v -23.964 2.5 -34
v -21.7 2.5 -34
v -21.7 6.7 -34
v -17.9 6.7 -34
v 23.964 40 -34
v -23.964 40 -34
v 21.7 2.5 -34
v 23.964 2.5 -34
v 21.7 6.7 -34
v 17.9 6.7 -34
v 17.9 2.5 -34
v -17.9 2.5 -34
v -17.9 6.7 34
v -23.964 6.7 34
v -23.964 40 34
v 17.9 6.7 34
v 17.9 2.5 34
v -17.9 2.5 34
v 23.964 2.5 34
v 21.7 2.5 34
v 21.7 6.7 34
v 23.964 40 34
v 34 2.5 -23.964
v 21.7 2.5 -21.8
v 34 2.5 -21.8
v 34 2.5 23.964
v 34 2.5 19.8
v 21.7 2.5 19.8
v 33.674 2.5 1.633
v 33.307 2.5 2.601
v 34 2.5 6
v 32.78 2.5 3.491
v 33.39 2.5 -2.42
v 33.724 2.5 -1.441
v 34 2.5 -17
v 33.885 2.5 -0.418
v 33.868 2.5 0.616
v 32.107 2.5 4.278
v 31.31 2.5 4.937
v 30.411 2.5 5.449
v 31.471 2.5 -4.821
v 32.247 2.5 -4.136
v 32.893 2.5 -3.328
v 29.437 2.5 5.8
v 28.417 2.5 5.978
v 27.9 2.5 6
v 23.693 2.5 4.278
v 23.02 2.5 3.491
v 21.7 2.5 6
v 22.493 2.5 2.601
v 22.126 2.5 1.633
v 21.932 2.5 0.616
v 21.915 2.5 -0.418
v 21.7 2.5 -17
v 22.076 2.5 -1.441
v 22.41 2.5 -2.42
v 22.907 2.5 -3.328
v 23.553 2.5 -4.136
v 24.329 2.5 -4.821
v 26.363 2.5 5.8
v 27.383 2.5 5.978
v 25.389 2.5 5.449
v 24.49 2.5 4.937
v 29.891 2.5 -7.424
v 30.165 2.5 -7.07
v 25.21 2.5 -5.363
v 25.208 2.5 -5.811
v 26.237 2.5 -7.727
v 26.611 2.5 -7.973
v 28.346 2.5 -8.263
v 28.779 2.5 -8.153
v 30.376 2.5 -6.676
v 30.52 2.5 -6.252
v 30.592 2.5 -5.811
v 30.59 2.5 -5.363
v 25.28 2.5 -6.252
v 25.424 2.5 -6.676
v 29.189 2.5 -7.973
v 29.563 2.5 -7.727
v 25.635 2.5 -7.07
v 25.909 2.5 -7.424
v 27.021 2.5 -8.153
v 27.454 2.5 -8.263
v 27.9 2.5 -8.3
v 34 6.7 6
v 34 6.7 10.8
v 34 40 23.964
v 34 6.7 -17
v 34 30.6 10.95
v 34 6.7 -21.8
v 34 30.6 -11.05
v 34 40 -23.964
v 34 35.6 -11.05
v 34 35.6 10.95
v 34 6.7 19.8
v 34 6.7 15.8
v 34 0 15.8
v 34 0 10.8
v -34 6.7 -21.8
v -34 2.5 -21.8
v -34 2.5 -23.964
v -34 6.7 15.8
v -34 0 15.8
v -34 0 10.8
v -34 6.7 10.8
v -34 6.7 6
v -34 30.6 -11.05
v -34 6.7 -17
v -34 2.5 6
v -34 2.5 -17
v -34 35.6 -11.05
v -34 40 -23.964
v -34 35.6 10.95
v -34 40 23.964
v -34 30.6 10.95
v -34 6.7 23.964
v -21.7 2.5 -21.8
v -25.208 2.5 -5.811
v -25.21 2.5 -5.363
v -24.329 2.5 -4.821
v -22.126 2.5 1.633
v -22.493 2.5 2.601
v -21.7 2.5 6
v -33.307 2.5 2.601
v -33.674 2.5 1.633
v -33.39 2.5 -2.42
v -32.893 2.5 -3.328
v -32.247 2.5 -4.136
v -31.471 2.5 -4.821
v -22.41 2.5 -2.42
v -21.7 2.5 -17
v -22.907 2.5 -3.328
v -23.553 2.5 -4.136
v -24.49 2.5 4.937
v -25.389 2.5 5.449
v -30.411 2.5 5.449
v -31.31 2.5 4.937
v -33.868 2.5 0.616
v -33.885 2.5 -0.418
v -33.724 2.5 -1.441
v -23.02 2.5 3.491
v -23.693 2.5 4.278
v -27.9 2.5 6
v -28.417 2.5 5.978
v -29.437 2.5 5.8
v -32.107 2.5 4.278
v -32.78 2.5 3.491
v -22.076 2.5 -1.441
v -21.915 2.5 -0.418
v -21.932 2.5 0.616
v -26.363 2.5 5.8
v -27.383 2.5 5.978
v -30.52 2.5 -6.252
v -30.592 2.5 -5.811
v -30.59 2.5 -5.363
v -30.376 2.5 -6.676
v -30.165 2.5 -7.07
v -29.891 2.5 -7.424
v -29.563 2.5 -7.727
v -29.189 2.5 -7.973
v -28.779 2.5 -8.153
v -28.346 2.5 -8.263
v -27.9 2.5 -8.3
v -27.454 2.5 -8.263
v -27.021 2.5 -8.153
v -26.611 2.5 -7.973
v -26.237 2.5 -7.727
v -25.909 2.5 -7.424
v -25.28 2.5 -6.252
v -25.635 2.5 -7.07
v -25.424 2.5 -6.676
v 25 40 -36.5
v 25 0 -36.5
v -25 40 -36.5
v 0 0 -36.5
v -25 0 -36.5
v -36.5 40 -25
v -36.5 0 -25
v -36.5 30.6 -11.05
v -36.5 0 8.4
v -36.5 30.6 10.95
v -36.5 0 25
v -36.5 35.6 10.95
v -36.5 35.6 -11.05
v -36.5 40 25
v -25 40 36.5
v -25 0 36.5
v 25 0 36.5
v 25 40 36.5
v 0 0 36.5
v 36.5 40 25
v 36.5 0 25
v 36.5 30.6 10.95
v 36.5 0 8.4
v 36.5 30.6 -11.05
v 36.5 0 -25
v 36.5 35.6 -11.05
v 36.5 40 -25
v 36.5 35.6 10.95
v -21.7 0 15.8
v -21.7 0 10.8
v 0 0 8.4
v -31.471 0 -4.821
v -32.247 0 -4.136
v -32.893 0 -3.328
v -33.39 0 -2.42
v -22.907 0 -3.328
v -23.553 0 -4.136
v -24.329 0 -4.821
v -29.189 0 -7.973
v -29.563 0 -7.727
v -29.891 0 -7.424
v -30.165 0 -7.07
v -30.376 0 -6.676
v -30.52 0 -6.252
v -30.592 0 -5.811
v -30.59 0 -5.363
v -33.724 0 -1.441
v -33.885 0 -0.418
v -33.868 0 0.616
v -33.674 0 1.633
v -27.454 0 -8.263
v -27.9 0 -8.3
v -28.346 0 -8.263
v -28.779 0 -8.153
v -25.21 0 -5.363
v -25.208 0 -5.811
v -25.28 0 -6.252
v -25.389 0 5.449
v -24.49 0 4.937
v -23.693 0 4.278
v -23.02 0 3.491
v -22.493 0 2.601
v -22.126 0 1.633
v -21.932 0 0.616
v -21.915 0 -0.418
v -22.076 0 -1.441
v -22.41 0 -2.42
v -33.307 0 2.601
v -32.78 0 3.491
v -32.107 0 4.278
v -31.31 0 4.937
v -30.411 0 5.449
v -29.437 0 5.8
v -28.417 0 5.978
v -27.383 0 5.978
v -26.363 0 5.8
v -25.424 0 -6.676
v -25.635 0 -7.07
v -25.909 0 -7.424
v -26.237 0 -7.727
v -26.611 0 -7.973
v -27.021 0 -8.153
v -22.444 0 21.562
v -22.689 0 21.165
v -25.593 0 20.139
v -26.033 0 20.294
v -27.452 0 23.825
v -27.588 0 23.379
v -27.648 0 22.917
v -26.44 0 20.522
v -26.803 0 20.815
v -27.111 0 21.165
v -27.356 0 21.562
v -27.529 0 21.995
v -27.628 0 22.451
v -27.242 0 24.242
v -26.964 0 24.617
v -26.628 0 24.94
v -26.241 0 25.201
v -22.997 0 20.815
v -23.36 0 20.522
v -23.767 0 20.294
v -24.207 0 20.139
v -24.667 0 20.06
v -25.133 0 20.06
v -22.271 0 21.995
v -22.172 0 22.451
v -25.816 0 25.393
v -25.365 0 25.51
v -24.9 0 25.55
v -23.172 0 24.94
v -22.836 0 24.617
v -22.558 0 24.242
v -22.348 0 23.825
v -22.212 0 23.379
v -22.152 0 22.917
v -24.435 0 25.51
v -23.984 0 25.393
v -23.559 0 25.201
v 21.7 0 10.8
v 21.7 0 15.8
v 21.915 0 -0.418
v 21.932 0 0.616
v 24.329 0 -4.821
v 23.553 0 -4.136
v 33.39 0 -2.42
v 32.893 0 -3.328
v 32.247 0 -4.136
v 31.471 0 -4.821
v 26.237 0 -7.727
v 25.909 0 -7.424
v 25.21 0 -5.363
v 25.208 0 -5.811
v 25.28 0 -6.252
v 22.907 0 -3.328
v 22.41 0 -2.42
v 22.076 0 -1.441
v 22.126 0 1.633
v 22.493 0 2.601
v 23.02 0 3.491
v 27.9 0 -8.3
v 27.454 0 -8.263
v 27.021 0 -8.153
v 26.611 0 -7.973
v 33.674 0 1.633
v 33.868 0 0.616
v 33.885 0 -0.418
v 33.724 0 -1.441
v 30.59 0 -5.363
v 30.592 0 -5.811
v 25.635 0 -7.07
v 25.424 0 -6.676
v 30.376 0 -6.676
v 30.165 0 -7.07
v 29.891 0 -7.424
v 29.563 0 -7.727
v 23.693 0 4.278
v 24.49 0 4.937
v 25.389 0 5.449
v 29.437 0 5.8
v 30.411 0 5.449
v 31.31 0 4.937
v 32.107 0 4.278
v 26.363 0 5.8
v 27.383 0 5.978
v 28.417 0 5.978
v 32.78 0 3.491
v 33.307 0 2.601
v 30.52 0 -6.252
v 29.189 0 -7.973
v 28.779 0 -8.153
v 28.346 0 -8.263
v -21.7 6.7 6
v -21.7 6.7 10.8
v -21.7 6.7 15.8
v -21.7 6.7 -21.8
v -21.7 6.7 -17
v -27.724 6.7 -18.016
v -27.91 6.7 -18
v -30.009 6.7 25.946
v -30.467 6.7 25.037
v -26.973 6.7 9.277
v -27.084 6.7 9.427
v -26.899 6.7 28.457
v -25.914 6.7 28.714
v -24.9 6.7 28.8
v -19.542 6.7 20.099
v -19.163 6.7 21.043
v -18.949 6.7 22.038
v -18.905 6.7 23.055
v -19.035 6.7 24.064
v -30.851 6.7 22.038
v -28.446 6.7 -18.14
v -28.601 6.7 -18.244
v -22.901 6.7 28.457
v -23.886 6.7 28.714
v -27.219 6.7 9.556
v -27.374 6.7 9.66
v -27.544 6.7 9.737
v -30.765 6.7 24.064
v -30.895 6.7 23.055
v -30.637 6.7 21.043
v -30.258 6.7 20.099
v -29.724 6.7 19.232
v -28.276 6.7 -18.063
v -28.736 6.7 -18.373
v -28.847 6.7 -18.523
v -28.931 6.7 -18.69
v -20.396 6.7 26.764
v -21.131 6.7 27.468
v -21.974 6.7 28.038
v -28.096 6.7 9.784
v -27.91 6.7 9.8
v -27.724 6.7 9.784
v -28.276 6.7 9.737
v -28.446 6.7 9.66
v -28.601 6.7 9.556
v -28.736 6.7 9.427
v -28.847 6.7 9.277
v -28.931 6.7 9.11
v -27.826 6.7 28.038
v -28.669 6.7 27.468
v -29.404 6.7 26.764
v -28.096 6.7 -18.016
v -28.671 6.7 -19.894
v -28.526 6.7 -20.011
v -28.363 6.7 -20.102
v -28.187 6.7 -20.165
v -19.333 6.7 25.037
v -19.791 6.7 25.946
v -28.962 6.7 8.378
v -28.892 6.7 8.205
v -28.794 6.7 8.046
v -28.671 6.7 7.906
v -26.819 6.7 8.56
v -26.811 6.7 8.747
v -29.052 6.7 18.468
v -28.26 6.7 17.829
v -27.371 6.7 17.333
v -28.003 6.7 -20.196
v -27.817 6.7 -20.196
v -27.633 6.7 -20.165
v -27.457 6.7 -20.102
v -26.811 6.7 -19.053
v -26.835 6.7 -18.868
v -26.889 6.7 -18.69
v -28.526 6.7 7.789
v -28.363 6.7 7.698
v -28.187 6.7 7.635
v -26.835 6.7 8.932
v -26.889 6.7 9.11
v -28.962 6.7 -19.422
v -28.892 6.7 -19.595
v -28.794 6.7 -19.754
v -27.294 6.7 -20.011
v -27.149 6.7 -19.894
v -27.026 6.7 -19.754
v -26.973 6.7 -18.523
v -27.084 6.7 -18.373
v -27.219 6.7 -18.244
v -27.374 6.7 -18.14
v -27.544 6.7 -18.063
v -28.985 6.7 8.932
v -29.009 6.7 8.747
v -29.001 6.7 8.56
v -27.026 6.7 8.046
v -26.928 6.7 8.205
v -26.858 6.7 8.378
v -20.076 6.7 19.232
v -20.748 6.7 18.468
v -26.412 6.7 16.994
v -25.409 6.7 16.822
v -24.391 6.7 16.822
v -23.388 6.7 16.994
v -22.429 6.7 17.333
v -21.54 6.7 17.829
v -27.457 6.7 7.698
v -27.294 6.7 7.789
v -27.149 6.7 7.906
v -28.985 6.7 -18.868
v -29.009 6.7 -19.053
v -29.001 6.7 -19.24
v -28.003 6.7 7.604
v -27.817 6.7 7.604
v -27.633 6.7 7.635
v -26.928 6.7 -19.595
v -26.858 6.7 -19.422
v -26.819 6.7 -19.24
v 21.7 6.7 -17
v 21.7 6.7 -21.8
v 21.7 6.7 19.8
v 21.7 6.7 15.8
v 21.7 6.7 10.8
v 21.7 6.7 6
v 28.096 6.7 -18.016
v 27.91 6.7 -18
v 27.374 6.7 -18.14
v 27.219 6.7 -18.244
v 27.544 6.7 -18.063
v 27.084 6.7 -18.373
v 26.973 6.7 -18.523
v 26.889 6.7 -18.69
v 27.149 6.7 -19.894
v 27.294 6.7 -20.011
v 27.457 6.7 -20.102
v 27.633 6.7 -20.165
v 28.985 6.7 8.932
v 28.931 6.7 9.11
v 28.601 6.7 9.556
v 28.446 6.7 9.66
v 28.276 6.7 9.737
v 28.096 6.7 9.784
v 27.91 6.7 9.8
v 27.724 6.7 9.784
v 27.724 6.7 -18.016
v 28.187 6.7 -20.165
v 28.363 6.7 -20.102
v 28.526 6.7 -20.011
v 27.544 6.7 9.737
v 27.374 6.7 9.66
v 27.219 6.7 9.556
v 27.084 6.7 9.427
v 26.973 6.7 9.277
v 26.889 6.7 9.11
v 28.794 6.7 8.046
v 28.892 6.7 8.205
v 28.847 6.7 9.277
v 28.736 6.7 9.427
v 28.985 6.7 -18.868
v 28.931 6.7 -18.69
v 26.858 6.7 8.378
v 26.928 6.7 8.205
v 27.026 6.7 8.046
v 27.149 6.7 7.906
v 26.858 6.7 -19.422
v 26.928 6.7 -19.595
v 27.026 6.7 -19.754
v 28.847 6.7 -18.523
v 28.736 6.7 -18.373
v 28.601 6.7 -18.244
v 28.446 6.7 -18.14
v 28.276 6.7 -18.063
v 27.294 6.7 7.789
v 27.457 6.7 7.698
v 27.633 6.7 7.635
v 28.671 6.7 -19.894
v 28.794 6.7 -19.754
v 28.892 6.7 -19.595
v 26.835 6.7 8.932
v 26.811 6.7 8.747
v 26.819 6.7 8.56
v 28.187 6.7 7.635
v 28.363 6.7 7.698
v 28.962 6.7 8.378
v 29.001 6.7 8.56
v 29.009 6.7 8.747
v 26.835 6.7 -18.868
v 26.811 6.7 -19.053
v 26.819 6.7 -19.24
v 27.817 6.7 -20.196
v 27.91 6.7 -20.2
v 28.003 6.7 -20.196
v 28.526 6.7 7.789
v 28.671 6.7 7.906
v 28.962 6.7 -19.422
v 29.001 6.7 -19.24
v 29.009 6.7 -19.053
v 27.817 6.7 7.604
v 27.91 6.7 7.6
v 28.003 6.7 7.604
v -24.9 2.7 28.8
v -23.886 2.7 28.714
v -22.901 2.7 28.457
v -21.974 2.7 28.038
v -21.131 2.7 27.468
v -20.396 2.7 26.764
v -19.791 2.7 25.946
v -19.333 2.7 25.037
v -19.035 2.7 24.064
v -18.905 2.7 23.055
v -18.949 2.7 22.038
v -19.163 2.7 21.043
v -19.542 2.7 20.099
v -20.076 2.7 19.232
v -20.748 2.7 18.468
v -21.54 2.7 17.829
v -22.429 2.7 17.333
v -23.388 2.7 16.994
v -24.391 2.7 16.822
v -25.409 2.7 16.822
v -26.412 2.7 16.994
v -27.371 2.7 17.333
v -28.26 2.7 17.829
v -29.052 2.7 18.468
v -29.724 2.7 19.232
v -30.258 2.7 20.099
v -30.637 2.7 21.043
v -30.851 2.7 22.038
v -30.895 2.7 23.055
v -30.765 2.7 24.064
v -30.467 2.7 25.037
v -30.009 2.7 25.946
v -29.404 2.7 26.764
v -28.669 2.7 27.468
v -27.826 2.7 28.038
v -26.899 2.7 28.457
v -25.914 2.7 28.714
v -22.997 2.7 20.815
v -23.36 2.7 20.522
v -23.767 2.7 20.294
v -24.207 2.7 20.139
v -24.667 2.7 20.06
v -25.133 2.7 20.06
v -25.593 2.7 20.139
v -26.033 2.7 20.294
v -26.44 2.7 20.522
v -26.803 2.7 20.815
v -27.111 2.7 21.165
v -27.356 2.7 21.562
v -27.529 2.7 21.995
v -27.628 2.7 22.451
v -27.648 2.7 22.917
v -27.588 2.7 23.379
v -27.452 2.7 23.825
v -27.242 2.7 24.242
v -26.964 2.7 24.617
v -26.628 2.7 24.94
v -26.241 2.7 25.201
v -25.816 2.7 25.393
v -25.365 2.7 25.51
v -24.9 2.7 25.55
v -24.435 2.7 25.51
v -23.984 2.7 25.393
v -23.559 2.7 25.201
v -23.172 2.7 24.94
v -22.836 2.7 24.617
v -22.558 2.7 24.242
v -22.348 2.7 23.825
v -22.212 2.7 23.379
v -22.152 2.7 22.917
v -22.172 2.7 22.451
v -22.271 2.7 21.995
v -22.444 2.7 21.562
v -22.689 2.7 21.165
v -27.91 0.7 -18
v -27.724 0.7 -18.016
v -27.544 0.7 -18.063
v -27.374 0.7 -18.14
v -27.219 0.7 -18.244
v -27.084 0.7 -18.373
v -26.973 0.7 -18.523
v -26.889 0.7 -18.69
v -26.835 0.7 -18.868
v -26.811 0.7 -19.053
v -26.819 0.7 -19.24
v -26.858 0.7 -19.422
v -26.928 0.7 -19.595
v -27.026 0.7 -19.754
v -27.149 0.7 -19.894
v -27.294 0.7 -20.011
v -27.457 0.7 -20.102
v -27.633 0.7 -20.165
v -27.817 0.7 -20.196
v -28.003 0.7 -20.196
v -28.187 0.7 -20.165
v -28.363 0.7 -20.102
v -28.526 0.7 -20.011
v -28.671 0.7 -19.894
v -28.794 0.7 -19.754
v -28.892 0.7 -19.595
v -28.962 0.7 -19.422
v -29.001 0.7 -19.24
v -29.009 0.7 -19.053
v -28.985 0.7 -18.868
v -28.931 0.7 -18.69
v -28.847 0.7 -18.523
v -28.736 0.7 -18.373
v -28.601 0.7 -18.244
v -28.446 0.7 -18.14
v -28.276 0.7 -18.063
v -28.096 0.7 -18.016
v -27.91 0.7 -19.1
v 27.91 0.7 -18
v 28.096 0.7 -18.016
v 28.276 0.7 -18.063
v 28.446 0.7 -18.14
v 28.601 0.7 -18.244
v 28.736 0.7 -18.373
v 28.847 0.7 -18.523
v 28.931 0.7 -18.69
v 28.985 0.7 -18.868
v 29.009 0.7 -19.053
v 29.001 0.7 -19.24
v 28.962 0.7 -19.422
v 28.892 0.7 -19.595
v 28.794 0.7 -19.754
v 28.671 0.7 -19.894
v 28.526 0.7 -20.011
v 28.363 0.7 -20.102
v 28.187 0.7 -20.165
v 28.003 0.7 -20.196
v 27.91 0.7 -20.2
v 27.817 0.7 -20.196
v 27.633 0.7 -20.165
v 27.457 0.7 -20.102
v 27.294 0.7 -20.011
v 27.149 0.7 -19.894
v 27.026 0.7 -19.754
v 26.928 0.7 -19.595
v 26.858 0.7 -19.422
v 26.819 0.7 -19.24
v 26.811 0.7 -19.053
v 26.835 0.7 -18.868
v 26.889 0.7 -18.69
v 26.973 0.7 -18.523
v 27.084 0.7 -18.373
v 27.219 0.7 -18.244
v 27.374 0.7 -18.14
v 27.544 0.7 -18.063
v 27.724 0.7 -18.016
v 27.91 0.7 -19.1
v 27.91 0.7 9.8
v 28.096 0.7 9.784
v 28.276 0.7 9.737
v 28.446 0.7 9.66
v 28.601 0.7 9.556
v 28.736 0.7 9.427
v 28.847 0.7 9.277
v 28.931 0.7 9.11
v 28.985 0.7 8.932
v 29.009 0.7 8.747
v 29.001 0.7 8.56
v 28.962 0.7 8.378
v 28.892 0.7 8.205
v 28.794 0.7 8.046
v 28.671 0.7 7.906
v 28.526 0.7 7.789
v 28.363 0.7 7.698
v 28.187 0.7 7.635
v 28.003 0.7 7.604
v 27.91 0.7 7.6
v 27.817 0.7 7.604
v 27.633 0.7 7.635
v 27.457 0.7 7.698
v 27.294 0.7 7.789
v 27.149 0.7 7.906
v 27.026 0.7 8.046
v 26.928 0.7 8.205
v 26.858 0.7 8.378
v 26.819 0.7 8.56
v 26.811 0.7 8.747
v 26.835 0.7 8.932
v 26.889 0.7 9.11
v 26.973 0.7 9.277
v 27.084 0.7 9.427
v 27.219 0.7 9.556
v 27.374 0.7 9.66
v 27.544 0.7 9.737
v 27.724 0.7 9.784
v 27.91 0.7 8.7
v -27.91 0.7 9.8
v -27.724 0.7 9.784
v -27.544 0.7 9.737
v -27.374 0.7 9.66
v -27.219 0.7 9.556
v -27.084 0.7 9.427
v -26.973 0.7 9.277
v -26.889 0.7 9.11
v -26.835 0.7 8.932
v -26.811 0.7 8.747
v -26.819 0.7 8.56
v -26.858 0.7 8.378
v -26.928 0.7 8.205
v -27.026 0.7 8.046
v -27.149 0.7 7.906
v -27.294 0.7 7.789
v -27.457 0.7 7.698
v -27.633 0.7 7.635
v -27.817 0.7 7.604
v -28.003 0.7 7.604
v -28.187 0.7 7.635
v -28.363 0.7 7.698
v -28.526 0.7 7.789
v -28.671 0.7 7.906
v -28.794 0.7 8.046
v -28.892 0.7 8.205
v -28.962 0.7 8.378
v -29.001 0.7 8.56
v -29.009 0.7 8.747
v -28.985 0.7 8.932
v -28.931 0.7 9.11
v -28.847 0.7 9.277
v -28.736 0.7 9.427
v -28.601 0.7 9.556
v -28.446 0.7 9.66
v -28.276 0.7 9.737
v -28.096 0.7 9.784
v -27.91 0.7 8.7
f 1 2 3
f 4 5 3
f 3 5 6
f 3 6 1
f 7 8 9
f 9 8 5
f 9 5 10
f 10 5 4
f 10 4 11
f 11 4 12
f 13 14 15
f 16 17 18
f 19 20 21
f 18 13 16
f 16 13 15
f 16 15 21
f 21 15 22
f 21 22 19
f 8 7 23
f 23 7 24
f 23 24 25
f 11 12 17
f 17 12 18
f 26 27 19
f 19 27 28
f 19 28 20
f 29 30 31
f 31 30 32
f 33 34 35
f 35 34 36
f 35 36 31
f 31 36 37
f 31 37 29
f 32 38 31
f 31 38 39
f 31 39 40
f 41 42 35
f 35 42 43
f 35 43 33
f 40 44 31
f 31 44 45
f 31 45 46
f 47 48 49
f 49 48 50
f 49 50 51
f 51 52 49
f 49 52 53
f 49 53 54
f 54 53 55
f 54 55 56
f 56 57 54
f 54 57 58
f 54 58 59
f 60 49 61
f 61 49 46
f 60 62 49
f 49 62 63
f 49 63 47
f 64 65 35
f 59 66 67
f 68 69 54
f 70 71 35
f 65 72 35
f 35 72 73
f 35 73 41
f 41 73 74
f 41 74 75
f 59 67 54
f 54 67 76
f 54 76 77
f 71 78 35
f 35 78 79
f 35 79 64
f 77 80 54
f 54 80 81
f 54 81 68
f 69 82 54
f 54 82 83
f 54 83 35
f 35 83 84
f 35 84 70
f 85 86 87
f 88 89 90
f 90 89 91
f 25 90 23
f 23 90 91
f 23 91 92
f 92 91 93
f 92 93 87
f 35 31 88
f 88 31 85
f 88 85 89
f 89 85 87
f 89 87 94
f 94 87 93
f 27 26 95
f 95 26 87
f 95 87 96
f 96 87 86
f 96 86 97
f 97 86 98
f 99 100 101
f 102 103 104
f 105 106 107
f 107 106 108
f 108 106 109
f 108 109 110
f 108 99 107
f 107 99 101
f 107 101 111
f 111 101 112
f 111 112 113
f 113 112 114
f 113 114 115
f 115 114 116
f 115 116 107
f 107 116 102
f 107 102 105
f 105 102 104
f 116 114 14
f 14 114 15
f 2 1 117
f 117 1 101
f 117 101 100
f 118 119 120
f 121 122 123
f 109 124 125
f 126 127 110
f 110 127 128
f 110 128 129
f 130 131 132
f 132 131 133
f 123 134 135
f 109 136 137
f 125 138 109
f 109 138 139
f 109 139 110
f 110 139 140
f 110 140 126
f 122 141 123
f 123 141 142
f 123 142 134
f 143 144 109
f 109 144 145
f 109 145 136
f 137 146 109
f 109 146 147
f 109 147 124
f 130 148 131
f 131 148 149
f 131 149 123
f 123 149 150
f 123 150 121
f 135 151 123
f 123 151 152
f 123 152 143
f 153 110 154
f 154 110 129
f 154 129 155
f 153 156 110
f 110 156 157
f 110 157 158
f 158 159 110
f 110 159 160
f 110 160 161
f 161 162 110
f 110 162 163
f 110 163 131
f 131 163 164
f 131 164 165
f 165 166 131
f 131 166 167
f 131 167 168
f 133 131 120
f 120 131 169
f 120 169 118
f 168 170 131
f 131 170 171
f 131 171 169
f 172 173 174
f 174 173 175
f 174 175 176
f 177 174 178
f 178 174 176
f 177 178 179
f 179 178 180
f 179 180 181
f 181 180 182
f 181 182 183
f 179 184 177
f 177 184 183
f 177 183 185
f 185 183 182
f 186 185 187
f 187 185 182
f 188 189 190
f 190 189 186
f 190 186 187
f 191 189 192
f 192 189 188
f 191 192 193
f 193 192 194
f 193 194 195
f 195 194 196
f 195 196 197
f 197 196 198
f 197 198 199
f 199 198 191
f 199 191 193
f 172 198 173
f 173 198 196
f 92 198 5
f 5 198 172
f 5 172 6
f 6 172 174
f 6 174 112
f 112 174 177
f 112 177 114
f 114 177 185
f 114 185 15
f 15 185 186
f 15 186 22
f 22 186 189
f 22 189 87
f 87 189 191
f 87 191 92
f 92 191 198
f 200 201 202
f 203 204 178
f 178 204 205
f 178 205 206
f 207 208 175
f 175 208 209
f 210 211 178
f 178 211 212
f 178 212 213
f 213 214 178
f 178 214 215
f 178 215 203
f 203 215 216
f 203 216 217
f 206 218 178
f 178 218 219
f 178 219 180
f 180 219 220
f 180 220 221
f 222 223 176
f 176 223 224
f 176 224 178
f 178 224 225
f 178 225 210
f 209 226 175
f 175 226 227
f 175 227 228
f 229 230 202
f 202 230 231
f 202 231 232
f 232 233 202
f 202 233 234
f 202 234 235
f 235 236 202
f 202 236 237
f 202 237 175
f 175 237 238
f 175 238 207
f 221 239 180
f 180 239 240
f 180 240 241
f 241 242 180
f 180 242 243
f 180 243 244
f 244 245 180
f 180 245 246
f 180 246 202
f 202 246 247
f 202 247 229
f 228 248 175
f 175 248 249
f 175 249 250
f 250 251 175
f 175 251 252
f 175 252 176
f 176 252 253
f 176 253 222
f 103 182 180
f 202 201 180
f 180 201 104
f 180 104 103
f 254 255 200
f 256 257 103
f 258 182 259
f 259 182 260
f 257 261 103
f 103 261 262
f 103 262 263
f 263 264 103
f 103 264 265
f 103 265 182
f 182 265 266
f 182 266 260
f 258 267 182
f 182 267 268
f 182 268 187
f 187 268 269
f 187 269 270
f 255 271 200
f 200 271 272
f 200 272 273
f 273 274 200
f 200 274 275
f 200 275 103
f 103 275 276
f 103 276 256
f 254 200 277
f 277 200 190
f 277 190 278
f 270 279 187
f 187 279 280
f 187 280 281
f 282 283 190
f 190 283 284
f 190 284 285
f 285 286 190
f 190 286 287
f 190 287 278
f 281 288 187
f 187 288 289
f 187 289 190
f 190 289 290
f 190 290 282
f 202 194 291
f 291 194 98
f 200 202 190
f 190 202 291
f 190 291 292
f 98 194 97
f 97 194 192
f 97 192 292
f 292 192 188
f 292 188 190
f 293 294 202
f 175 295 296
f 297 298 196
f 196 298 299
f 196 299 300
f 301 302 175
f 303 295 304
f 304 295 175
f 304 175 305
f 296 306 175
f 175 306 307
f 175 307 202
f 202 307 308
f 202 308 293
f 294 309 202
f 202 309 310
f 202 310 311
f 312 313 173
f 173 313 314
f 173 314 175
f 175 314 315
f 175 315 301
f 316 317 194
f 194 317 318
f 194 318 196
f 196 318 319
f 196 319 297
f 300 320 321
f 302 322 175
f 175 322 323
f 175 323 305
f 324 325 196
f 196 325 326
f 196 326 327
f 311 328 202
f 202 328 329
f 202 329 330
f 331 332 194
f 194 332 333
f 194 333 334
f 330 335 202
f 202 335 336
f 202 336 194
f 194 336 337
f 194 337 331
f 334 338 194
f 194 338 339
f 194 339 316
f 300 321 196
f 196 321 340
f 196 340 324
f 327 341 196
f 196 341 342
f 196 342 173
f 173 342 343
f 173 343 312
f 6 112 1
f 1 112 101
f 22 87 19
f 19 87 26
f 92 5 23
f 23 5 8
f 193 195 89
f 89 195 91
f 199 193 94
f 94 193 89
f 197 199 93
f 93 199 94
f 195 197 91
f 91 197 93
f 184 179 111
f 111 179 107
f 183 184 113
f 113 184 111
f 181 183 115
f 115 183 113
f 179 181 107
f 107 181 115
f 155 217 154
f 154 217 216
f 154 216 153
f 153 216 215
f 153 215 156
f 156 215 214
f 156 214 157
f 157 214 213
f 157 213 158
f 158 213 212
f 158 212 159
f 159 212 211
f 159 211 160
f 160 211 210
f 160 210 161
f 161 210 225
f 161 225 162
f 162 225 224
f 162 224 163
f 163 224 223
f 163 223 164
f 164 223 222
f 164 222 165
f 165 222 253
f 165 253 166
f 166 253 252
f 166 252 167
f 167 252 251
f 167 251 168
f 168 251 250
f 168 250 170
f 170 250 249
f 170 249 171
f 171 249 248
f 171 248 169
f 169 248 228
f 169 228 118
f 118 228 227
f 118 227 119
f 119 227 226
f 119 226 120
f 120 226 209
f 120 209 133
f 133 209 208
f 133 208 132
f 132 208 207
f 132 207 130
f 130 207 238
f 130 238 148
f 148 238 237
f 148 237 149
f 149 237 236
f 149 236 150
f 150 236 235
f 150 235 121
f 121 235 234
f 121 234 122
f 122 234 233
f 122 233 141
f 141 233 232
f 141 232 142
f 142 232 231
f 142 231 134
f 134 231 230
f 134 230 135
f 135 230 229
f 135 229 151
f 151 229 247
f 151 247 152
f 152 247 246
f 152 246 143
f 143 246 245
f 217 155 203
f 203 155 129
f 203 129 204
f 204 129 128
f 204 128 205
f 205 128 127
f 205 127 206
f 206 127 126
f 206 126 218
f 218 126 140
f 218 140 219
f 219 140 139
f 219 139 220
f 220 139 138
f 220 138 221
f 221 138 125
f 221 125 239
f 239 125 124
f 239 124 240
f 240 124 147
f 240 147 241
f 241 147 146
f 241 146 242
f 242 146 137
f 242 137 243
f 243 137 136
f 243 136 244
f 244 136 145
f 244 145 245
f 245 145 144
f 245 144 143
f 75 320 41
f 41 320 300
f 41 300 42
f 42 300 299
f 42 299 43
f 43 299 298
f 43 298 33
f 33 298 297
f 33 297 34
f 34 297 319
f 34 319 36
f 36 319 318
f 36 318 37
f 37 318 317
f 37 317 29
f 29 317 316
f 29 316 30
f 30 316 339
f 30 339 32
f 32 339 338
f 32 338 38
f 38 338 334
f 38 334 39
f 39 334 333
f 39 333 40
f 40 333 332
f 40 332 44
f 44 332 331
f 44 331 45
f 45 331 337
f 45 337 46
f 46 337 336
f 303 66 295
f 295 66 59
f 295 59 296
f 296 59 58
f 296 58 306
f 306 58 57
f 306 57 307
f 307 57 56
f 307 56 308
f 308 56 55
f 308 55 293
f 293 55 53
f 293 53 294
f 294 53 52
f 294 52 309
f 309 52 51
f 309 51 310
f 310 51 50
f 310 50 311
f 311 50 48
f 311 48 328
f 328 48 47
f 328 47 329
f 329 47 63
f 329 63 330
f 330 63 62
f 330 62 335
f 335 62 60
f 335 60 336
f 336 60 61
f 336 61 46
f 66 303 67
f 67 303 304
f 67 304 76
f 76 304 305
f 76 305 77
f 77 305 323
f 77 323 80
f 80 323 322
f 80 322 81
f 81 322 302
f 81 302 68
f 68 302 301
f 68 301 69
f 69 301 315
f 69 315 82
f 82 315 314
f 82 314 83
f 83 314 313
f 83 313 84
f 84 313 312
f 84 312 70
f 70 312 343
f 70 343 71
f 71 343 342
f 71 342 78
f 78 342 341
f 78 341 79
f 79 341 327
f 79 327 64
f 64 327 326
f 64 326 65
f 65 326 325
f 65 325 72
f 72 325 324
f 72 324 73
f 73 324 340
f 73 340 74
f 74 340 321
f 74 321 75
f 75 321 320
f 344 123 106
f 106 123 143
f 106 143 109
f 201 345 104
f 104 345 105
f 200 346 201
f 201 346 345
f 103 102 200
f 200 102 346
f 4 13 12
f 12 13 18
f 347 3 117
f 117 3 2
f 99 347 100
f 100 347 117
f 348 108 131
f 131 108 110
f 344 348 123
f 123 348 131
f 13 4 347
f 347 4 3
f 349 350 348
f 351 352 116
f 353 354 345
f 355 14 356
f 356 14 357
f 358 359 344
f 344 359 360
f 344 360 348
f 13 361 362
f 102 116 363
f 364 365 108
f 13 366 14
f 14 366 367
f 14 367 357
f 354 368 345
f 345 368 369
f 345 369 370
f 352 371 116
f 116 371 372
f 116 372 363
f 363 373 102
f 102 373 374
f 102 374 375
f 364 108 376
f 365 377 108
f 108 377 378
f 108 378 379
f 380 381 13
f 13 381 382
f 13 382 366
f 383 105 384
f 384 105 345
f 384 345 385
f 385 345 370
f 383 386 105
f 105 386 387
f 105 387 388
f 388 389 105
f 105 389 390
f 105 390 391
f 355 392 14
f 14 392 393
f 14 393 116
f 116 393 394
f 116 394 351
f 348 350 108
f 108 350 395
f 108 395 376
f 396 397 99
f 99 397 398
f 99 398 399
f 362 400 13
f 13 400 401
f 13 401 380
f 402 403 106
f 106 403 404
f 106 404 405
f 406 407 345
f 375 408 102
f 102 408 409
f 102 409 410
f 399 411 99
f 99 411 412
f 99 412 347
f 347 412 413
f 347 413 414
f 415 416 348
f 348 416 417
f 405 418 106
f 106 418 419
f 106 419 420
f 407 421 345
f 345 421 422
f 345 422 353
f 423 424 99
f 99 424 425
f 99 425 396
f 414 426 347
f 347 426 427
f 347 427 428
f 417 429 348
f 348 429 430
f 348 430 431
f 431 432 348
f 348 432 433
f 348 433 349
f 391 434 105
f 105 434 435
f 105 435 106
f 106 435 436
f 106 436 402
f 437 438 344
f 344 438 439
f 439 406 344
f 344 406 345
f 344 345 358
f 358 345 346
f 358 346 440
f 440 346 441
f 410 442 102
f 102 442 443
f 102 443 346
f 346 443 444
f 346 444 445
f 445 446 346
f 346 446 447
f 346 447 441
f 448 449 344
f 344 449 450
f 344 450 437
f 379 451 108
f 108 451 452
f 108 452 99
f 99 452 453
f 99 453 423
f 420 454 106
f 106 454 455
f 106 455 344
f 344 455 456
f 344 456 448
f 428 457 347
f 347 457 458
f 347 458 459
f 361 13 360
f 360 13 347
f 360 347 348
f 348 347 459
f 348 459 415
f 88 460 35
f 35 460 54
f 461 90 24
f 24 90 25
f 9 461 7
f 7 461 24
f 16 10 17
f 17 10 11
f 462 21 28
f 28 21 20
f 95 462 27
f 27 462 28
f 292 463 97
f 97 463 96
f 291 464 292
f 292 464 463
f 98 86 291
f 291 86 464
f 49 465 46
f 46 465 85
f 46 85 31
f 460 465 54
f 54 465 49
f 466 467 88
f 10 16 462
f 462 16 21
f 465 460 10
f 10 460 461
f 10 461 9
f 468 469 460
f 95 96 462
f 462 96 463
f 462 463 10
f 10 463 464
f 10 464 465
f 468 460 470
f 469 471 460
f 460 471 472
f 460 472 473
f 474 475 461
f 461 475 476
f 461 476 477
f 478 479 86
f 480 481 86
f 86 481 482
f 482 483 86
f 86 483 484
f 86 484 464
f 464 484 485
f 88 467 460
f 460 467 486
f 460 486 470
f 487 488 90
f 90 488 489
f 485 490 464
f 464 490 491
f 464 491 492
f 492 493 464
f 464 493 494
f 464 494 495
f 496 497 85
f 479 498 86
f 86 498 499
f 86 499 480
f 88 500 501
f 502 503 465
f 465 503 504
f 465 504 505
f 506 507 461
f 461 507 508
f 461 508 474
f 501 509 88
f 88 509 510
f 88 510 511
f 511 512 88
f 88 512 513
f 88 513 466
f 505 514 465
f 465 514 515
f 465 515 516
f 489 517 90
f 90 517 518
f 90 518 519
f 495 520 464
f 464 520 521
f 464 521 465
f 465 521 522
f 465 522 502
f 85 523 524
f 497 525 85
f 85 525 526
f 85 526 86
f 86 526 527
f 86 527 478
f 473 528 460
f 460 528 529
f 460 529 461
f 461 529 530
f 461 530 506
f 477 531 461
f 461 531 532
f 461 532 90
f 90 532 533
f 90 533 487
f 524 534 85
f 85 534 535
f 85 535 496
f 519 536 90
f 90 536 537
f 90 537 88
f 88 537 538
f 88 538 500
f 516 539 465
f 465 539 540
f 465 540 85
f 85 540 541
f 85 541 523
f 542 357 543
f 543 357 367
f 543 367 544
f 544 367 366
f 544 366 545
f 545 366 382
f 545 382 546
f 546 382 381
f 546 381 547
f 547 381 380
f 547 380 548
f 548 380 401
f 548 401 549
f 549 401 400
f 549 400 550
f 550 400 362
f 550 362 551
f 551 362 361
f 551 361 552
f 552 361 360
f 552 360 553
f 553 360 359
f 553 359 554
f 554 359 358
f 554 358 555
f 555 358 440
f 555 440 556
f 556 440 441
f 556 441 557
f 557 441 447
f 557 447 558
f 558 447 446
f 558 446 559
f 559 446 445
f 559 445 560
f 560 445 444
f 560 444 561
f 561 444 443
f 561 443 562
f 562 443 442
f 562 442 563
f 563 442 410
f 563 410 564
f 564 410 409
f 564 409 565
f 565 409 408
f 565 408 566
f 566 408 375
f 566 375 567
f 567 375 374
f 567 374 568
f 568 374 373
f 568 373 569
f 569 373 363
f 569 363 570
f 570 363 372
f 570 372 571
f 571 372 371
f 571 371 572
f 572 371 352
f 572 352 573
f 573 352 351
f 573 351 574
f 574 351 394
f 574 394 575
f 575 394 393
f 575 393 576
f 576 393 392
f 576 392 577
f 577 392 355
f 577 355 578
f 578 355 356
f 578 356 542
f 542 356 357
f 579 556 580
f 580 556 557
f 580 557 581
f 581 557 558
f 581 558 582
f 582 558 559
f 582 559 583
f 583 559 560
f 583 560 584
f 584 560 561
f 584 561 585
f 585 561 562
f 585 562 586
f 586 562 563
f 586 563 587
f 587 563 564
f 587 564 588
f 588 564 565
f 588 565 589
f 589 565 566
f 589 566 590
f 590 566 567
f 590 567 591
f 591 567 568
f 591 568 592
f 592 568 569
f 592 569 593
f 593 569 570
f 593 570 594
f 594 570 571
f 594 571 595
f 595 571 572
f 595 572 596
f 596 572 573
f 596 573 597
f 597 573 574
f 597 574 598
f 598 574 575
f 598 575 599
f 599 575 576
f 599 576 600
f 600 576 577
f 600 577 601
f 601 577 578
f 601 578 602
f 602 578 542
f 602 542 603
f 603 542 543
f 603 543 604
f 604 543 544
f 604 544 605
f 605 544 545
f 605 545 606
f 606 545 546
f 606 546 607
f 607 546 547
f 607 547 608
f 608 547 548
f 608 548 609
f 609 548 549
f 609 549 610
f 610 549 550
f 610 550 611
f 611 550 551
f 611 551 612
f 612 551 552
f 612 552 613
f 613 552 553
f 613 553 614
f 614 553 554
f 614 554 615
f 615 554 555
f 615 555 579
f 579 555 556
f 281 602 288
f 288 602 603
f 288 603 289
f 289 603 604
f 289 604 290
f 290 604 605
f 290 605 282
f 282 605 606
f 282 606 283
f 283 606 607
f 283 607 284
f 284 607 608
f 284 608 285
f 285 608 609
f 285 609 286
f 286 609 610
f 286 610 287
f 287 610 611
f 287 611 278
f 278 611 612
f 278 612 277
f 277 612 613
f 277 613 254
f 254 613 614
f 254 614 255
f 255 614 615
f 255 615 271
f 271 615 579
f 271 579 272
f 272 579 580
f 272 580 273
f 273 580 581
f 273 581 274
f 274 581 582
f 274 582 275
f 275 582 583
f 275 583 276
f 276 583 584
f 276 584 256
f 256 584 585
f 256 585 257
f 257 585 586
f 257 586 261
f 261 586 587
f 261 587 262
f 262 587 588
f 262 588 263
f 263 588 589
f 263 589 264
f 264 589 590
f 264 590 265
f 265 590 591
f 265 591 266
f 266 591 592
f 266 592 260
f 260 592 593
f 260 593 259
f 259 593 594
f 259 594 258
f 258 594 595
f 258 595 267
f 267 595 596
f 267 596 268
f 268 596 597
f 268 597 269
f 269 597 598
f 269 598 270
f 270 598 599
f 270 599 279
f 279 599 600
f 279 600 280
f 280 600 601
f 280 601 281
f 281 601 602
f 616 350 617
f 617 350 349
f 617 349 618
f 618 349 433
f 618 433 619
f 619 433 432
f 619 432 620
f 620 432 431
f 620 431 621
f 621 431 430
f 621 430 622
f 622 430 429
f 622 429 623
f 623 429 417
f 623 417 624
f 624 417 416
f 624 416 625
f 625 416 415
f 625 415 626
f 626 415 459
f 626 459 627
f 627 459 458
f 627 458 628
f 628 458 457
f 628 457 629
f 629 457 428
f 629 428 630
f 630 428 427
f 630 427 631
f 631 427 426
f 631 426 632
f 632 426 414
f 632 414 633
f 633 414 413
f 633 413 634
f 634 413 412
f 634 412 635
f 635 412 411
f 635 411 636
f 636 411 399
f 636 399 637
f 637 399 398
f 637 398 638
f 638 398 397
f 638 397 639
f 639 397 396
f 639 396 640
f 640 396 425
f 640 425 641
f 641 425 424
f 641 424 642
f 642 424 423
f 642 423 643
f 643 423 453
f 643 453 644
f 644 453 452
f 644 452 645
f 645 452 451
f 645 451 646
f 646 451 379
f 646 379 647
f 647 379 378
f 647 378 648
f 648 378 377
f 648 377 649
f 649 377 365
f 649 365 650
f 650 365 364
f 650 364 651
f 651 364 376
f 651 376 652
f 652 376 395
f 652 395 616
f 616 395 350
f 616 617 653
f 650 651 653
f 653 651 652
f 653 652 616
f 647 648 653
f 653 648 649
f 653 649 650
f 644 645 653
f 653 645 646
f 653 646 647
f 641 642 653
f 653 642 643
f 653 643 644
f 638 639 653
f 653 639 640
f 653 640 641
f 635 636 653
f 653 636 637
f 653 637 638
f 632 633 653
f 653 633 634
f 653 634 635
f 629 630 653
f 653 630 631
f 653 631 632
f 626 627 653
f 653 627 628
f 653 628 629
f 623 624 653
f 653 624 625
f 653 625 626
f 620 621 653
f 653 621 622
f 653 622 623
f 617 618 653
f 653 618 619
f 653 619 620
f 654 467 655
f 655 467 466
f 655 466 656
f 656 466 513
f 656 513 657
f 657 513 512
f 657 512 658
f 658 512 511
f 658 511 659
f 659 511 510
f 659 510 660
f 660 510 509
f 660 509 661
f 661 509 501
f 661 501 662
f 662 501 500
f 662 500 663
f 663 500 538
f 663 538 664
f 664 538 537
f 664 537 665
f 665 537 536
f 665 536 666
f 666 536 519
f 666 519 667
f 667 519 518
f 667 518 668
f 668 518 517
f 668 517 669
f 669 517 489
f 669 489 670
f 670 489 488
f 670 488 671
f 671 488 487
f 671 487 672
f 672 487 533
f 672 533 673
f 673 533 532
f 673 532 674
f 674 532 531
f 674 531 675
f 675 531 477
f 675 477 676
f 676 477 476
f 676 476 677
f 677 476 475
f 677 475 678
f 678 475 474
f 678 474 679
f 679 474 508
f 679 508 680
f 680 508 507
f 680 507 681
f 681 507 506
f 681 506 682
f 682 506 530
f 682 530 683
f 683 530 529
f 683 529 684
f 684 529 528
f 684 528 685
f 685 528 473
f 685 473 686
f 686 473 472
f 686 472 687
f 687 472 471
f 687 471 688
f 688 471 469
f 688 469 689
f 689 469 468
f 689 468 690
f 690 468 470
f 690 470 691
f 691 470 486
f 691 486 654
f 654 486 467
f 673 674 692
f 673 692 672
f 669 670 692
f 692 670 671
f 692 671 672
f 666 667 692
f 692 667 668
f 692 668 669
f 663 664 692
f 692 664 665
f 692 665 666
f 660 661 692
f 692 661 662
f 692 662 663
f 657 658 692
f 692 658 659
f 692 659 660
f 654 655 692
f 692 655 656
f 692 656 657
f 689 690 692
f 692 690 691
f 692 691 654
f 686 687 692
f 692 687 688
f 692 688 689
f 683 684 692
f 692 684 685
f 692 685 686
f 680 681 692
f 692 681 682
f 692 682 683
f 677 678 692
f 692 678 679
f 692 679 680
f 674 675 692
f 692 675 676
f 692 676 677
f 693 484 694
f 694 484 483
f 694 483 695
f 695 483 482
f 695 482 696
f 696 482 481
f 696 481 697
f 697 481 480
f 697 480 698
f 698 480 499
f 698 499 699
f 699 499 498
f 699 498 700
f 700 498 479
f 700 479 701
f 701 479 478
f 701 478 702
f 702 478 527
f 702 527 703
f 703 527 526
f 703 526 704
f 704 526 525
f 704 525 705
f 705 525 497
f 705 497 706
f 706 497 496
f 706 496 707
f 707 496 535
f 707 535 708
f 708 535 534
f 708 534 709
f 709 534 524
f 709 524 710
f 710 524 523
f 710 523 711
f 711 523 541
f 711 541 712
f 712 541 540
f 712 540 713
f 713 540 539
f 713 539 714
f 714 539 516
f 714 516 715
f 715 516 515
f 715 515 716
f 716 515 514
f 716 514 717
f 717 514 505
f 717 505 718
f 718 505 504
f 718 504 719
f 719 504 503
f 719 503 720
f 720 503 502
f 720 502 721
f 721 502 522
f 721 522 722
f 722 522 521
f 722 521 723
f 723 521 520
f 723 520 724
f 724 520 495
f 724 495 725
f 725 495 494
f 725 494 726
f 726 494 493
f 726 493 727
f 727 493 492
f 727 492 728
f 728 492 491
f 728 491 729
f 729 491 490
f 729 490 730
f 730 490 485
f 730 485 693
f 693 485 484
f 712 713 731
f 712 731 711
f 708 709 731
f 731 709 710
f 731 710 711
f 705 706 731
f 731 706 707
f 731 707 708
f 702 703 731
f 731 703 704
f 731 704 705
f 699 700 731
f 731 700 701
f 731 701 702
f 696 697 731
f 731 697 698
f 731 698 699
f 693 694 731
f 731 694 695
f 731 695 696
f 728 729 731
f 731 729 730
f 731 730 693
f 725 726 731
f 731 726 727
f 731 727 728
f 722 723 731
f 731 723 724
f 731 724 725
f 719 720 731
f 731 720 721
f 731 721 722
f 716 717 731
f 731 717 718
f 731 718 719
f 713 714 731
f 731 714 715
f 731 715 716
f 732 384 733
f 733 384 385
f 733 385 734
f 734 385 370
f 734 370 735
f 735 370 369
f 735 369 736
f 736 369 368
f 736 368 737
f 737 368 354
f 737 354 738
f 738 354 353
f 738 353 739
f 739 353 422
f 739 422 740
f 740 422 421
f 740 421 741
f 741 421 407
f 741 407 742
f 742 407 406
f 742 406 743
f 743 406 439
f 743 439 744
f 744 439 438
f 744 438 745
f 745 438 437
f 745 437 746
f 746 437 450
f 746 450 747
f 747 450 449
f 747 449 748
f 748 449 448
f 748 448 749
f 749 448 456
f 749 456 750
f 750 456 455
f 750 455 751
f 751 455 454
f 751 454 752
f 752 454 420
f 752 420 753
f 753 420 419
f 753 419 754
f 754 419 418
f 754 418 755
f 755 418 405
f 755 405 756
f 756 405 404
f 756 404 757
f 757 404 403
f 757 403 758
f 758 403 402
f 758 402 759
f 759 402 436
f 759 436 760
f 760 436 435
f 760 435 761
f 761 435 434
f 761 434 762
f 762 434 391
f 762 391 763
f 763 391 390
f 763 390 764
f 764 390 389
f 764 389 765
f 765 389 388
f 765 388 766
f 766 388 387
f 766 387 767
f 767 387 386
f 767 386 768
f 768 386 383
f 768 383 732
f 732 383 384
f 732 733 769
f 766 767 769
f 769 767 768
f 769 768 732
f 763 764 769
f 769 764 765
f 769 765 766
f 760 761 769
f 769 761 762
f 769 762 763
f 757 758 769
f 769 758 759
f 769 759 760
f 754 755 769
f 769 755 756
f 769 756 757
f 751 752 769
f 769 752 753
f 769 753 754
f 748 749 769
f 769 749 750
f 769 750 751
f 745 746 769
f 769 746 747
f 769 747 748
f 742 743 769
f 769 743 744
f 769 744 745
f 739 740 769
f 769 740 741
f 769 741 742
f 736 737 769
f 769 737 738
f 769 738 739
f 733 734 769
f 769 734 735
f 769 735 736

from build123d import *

# Parameters (mm, degrees)
SALIENTE_EXTRUIR1_DEPTH = 40
VACIADO1_T              = -2.5
CROQUIS5_W              = 22
CROQUIS5_H              = 5
CORTAR_EXTRUIR1_DEPTH   = 91.891418737
CORTAR_EXTRUIR2_DEPTH   = 10
SALIENTE_EXTRUIR4_DEPTH = 4.2
CROQUIS9_W              = 12.3
CROQUIS9_H              = 5
CORTAR_EXTRUIR3_DEPTH   = 64.802429421
CROQUIS10_R             = 6
CORTAR_EXTRUIR4_DEPTH   = 4
CROQUIS11_R             = 2.75
CORTAR_EXTRUIR5_DEPTH   = 4
CROQUIS12_R             = 1.1
CORTAR_EXTRUIR6_DEPTH   = 6


with BuildPart() as part:
    # Croquis3 → Saliente-Extruir1 (new body)
    with BuildSketch(Plane(origin=(0, 0, 0), x_dir=(1, 0, 0), z_dir=(0, 1, 0))):
        Polygon((-25, -36.5), (25, -36.5), (36.5, -25), (36.5, 25), (25, 36.5), (-25, 36.5), (-36.5, 25), (-36.5, -25), align=None)
    extrude(amount=SALIENTE_EXTRUIR1_DEPTH)

    # Vaciado1
    vaciado1_openings = [part.faces().sort_by_distance(p)[0] for p in [
        (0, 40, 0),
    ]]
    offset(amount=VACIADO1_T, openings=vaciado1_openings, kind=Kind.INTERSECTION)

    # Croquis5 → Cortar-Extruir1 (cut, through all)
    with BuildSketch(Plane.ZY.offset(36.5)):
        with Locations((-0.05, 33.1)):
            Rectangle(CROQUIS5_W, CROQUIS5_H)
    extrude(amount=-CORTAR_EXTRUIR1_DEPTH, mode=Mode.SUBTRACT)

    # Croquis6 → Cortar-Extruir2 (cut)
    with BuildSketch(Plane.XZ):
        with BuildLine():
            ThreePointArc((-25.210387191, -5.363392857), (-27.9, 6), (-30.589612809, -5.363392857))
            ThreePointArc((-30.589612809, -5.363392857), (-27.9, -8.3), (-25.210387191, -5.363392857))
        make_face()
        with BuildLine():
            ThreePointArc((30.589612809, -5.363392857), (27.9, -8.3), (25.210387191, -5.363392857))
            ThreePointArc((25.210387191, -5.363392857), (27.9, 6), (30.589612809, -5.363392857))
        make_face()
    extrude(amount=-CORTAR_EXTRUIR2_DEPTH, mode=Mode.SUBTRACT)

    # Croquis7 → Saliente-Extruir4 (add)
    with BuildSketch(Plane(origin=(0, 2.5, 0), x_dir=(1, 0, 0), z_dir=(0, 1, 0))):
        Polygon((-21.7, 0), (-21.7, 17), (-34, 17), (-34, 21.8), (-21.7, 21.8), (-21.7, 34), (-17.9, 34), (-17.9, -34), (-21.7, -34), (-23.964466094, -34), (-34, -23.964466094), (-34, -19.8), (-34, -15.8), (-21.7, -15.8), (-21.7, -10.8), (-34, -10.8), (-34, -6), (-21.7, -6), align=None)
        Polygon((21.7, -19.8), (21.7, -34), (17.9, -34), (17.9, 34), (21.7, 34), (21.7, 21.8), (34, 21.8), (34, 17), (21.7, 17), (21.7, 0), (21.7, -6), (34, -6), (34, -10.8), (21.7, -10.8), (21.7, -15.8), (34, -15.8), (34, -19.8), align=None)
    extrude(amount=SALIENTE_EXTRUIR4_DEPTH)

    # Croquis9 → Cortar-Extruir3 (cut, through all)
    with BuildSketch(Plane(origin=(0, 2.5, 0), x_dir=(1, 0, 0), z_dir=(0, 1, 0))):
        with Locations((-27.85, -13.3)):
            Rectangle(CROQUIS9_W, CROQUIS9_H)
        with Locations((27.85, -13.3)):
            Rectangle(CROQUIS9_W, CROQUIS9_H)
    extrude(amount=-CORTAR_EXTRUIR3_DEPTH, mode=Mode.SUBTRACT)

    # Croquis10 → Cortar-Extruir4 (cut)
    with BuildSketch(Plane(origin=(0, 6.7, 0), x_dir=(1, 0, 0), z_dir=(0, 1, 0))):
        with Locations(Location((-24.9, -22.8, 0), (0, 0, 270))):
            Circle(CROQUIS10_R)
    extrude(amount=-CORTAR_EXTRUIR4_DEPTH, mode=Mode.SUBTRACT)

    # Croquis11 → Cortar-Extruir5 (cut)
    with BuildSketch(Plane(origin=(0, 2.7, 0), x_dir=(1, 0, 0), z_dir=(0, 1, 0))):
        with Locations(Location((-24.9, -22.8, 0), (0, 0, 270))):
            Circle(CROQUIS11_R)
    extrude(amount=-CORTAR_EXTRUIR5_DEPTH, mode=Mode.SUBTRACT)

    # Croquis12 → Cortar-Extruir6 (cut)
    with BuildSketch(Plane(origin=(0, 6.7, 0), x_dir=(1, 0, 0), z_dir=(0, 1, 0))):
        with Locations(Location((-27.91, 19.1, 0), (0, 0, 270))):
            Circle(CROQUIS12_R)
        with Locations(Location((-27.91, -8.7, 0), (0, 0, 270))):
            Circle(CROQUIS12_R)
        with Locations(Location((27.91, -8.7, 0), (0, 0, 90))):
            Circle(CROQUIS12_R)
        with Locations(Location((27.91, 19.1, 0), (0, 0, 90))):
            Circle(CROQUIS12_R)
    extrude(amount=-CORTAR_EXTRUIR6_DEPTH, mode=Mode.SUBTRACT)


solid = part.part
